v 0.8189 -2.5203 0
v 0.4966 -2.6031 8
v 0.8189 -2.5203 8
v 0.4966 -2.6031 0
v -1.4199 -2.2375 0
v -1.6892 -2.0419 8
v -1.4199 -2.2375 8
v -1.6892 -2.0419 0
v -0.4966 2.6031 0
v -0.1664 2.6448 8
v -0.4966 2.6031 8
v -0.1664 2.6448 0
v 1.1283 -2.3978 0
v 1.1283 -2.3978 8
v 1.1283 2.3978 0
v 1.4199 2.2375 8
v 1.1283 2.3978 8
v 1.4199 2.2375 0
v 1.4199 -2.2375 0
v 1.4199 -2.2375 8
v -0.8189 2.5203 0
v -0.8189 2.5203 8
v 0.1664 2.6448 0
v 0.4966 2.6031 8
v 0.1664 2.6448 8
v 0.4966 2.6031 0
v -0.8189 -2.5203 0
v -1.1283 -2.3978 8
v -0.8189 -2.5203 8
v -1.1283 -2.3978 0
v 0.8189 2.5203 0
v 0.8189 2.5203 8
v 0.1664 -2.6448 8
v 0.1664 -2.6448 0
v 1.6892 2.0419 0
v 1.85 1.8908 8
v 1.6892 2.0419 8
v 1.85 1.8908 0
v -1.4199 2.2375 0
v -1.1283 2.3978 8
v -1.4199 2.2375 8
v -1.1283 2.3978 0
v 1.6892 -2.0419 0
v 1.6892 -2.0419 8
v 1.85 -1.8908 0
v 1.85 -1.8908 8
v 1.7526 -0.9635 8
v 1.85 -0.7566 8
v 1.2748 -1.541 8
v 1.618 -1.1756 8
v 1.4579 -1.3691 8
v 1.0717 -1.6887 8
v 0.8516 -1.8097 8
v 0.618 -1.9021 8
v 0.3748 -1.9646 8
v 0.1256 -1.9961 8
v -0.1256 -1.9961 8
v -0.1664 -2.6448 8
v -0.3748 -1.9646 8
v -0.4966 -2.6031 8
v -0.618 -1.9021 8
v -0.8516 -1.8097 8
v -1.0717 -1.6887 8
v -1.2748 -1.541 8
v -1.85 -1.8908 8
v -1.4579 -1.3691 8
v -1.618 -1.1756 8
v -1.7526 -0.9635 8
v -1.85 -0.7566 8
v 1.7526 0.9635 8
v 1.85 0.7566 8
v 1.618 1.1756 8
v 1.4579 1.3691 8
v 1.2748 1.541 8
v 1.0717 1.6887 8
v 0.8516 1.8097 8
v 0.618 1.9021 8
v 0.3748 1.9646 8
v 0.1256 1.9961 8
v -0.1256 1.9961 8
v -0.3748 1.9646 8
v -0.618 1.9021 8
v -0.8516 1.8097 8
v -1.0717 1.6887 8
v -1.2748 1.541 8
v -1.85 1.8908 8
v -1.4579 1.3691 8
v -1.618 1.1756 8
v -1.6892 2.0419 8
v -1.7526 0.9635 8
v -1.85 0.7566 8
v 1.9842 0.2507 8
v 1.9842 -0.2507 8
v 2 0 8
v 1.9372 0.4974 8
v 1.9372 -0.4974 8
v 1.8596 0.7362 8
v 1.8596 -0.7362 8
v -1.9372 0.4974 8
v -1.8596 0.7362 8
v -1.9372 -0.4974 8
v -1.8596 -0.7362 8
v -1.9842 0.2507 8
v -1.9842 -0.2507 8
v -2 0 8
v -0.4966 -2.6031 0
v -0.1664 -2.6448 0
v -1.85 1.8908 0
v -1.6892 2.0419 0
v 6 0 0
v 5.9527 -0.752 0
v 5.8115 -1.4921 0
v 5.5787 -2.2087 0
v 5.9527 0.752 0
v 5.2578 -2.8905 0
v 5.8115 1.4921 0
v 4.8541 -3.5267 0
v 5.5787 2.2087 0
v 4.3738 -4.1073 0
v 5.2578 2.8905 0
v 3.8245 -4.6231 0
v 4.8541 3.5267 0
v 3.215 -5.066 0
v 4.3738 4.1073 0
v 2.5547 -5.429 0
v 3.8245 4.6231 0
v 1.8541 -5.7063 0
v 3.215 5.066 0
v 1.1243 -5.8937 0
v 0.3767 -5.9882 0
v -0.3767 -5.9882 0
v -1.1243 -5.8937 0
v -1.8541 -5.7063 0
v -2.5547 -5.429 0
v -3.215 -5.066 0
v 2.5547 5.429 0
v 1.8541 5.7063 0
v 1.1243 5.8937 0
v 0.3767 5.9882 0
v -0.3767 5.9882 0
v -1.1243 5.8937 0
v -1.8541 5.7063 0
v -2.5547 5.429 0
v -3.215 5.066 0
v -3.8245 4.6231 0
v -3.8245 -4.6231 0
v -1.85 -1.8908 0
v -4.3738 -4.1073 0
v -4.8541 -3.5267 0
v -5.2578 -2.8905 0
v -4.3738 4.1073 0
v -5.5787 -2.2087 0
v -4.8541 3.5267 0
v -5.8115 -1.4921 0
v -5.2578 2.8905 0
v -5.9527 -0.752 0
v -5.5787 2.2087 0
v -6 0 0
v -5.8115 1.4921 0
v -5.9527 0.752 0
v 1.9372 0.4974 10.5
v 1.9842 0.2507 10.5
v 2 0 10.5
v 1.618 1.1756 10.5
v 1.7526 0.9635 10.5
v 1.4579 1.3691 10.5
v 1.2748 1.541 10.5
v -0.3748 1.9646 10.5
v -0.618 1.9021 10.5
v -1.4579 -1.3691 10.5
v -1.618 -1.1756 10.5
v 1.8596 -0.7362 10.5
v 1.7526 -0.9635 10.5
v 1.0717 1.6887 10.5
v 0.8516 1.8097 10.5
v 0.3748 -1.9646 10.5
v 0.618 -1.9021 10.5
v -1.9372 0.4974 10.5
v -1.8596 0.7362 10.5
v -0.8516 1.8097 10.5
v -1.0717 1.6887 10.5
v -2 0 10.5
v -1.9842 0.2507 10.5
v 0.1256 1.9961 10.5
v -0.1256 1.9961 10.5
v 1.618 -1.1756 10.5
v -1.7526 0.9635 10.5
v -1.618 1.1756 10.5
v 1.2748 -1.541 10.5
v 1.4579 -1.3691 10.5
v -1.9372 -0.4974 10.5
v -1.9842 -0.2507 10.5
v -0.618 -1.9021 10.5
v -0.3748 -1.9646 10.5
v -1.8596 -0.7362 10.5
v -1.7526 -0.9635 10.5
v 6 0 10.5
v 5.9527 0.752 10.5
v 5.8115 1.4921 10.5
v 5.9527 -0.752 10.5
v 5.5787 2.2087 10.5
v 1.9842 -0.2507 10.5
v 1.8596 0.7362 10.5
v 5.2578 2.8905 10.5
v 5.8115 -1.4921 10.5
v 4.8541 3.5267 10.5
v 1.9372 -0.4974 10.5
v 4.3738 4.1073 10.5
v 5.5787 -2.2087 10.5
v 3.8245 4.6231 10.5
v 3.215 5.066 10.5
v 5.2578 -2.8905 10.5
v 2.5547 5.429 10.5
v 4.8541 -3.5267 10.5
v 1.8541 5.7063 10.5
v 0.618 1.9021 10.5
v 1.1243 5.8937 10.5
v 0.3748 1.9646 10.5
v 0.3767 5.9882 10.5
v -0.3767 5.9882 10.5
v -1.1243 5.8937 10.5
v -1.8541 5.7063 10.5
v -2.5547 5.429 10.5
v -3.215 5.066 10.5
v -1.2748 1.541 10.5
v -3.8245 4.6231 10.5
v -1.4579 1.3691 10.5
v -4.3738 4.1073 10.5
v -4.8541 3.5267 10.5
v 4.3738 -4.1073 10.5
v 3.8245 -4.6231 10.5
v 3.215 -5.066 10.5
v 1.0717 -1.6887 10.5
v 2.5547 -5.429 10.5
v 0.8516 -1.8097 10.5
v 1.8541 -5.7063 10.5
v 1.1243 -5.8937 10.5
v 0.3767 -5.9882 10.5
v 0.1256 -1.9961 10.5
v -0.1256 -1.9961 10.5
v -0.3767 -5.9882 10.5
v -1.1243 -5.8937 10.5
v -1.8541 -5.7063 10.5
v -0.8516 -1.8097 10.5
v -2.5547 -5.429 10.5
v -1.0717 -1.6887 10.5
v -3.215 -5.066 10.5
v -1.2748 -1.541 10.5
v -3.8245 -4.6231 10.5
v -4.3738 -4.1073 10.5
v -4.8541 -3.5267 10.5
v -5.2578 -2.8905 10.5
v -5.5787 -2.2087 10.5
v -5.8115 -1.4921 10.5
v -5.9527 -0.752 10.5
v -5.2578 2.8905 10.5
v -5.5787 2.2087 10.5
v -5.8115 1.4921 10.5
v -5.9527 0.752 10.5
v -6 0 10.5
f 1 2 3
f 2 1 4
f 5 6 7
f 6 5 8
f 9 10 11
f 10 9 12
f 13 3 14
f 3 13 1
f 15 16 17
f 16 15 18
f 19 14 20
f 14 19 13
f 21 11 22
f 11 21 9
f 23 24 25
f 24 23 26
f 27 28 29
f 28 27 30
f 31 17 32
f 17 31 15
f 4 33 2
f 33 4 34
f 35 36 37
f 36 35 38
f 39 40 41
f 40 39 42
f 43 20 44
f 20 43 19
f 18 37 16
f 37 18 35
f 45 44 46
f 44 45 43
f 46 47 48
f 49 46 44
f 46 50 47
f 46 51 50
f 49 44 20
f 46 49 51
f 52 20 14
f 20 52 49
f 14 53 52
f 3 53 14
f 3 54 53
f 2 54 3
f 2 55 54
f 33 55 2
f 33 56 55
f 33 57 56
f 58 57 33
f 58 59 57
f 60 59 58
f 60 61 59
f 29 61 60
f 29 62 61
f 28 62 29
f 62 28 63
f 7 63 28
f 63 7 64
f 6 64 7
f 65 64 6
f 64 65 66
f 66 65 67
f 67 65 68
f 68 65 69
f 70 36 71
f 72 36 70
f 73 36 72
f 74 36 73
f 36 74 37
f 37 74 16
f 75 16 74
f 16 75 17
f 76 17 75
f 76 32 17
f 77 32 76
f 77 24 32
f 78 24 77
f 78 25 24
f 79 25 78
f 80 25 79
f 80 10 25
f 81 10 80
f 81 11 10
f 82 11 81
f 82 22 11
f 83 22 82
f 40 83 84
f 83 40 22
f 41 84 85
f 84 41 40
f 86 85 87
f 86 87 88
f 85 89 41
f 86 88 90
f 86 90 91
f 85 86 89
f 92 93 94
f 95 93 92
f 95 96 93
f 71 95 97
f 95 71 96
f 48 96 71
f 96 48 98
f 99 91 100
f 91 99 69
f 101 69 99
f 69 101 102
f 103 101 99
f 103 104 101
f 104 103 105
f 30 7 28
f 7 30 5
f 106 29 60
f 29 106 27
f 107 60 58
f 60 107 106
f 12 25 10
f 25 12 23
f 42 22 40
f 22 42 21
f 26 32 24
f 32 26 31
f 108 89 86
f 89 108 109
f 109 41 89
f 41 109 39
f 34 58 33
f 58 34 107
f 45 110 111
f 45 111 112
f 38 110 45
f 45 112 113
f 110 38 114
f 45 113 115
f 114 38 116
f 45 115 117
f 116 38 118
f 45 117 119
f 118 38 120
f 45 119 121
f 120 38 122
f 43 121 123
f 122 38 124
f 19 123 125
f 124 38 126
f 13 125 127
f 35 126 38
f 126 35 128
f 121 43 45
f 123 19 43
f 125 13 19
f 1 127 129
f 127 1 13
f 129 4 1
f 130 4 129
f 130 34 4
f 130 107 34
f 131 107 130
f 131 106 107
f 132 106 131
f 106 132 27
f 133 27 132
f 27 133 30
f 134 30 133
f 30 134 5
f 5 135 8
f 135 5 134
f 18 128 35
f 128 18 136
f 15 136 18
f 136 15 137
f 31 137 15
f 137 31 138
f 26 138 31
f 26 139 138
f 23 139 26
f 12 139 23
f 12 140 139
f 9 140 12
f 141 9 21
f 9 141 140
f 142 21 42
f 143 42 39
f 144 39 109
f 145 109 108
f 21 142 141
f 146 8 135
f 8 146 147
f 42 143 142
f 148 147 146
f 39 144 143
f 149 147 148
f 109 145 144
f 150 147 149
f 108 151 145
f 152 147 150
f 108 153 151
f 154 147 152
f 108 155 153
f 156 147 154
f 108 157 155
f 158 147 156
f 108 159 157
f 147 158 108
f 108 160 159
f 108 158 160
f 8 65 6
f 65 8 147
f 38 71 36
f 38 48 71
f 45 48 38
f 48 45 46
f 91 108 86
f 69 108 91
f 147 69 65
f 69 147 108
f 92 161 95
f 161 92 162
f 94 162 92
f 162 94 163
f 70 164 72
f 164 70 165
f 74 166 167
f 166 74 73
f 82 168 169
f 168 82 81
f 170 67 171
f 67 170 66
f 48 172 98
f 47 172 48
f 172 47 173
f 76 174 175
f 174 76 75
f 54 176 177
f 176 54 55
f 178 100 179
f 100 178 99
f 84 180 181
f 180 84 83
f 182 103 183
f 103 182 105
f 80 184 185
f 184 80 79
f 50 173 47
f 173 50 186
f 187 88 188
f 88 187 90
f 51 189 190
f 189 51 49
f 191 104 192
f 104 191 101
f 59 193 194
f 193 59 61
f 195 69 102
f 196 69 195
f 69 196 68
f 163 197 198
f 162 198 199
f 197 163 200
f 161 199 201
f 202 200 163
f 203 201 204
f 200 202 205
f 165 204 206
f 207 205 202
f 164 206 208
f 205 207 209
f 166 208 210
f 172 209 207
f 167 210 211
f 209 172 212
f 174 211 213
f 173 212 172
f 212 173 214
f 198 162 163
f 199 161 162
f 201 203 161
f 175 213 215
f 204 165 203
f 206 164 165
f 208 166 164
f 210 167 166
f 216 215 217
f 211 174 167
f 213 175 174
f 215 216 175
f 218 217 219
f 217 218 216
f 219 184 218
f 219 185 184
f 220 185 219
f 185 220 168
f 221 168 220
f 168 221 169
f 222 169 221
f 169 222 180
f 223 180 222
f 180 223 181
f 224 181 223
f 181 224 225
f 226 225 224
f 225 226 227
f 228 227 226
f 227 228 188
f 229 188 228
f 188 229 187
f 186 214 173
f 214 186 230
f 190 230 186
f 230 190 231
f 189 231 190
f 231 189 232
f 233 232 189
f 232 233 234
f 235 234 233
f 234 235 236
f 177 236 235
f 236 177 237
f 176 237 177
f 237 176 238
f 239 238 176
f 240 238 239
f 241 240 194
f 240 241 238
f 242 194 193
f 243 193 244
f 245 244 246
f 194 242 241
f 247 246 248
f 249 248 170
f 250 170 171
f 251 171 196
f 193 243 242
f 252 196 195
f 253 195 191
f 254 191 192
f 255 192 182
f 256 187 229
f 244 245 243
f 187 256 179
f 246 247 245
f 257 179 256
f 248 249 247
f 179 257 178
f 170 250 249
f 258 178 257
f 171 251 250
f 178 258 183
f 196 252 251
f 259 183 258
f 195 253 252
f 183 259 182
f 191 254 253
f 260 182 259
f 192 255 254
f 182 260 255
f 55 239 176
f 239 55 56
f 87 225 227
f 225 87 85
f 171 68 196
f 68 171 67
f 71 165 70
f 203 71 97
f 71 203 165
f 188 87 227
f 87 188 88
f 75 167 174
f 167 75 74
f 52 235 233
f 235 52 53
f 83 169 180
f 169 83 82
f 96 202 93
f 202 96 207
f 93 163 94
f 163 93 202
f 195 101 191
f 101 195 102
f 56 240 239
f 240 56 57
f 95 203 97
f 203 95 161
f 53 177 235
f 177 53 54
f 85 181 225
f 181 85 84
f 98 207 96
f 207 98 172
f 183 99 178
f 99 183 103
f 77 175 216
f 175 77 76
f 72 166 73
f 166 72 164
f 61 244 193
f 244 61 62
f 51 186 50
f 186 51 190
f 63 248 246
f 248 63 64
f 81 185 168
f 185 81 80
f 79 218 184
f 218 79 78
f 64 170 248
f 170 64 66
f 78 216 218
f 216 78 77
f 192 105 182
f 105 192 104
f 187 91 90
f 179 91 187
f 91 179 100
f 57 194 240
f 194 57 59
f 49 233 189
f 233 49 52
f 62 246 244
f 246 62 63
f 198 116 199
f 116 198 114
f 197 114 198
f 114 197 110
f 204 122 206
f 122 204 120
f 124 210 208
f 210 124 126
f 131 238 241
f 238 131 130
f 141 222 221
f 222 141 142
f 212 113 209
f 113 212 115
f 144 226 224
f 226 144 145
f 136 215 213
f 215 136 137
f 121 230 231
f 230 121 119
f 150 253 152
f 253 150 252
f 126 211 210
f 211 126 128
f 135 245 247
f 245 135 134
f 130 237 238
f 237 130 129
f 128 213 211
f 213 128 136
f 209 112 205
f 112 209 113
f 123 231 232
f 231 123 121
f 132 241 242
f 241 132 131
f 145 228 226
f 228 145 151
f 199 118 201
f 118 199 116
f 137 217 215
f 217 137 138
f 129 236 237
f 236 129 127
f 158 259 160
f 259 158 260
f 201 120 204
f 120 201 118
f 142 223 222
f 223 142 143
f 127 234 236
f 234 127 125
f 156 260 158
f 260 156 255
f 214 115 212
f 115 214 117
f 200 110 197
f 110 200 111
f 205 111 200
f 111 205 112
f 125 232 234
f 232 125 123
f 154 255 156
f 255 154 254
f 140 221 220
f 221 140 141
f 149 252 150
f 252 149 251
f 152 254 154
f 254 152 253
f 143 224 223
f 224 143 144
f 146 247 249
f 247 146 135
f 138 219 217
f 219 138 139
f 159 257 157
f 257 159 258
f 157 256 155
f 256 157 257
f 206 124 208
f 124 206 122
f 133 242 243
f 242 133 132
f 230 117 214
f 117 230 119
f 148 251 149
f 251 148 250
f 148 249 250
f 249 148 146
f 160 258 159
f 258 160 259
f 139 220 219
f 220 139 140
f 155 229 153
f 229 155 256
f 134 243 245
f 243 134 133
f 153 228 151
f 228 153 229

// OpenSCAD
$fn=50;

difference() {
cylinder(8+2.5, 6, 6);

union() {
    
intersection() {
cylinder(8, 5.3/2, 5.3/2);
translate([0, 0, 4])
cube([3.8-0.1, 10, 8], true);
}

translate([0, 0, 8])
cylinder(2.5, 2, 2);
}
}
